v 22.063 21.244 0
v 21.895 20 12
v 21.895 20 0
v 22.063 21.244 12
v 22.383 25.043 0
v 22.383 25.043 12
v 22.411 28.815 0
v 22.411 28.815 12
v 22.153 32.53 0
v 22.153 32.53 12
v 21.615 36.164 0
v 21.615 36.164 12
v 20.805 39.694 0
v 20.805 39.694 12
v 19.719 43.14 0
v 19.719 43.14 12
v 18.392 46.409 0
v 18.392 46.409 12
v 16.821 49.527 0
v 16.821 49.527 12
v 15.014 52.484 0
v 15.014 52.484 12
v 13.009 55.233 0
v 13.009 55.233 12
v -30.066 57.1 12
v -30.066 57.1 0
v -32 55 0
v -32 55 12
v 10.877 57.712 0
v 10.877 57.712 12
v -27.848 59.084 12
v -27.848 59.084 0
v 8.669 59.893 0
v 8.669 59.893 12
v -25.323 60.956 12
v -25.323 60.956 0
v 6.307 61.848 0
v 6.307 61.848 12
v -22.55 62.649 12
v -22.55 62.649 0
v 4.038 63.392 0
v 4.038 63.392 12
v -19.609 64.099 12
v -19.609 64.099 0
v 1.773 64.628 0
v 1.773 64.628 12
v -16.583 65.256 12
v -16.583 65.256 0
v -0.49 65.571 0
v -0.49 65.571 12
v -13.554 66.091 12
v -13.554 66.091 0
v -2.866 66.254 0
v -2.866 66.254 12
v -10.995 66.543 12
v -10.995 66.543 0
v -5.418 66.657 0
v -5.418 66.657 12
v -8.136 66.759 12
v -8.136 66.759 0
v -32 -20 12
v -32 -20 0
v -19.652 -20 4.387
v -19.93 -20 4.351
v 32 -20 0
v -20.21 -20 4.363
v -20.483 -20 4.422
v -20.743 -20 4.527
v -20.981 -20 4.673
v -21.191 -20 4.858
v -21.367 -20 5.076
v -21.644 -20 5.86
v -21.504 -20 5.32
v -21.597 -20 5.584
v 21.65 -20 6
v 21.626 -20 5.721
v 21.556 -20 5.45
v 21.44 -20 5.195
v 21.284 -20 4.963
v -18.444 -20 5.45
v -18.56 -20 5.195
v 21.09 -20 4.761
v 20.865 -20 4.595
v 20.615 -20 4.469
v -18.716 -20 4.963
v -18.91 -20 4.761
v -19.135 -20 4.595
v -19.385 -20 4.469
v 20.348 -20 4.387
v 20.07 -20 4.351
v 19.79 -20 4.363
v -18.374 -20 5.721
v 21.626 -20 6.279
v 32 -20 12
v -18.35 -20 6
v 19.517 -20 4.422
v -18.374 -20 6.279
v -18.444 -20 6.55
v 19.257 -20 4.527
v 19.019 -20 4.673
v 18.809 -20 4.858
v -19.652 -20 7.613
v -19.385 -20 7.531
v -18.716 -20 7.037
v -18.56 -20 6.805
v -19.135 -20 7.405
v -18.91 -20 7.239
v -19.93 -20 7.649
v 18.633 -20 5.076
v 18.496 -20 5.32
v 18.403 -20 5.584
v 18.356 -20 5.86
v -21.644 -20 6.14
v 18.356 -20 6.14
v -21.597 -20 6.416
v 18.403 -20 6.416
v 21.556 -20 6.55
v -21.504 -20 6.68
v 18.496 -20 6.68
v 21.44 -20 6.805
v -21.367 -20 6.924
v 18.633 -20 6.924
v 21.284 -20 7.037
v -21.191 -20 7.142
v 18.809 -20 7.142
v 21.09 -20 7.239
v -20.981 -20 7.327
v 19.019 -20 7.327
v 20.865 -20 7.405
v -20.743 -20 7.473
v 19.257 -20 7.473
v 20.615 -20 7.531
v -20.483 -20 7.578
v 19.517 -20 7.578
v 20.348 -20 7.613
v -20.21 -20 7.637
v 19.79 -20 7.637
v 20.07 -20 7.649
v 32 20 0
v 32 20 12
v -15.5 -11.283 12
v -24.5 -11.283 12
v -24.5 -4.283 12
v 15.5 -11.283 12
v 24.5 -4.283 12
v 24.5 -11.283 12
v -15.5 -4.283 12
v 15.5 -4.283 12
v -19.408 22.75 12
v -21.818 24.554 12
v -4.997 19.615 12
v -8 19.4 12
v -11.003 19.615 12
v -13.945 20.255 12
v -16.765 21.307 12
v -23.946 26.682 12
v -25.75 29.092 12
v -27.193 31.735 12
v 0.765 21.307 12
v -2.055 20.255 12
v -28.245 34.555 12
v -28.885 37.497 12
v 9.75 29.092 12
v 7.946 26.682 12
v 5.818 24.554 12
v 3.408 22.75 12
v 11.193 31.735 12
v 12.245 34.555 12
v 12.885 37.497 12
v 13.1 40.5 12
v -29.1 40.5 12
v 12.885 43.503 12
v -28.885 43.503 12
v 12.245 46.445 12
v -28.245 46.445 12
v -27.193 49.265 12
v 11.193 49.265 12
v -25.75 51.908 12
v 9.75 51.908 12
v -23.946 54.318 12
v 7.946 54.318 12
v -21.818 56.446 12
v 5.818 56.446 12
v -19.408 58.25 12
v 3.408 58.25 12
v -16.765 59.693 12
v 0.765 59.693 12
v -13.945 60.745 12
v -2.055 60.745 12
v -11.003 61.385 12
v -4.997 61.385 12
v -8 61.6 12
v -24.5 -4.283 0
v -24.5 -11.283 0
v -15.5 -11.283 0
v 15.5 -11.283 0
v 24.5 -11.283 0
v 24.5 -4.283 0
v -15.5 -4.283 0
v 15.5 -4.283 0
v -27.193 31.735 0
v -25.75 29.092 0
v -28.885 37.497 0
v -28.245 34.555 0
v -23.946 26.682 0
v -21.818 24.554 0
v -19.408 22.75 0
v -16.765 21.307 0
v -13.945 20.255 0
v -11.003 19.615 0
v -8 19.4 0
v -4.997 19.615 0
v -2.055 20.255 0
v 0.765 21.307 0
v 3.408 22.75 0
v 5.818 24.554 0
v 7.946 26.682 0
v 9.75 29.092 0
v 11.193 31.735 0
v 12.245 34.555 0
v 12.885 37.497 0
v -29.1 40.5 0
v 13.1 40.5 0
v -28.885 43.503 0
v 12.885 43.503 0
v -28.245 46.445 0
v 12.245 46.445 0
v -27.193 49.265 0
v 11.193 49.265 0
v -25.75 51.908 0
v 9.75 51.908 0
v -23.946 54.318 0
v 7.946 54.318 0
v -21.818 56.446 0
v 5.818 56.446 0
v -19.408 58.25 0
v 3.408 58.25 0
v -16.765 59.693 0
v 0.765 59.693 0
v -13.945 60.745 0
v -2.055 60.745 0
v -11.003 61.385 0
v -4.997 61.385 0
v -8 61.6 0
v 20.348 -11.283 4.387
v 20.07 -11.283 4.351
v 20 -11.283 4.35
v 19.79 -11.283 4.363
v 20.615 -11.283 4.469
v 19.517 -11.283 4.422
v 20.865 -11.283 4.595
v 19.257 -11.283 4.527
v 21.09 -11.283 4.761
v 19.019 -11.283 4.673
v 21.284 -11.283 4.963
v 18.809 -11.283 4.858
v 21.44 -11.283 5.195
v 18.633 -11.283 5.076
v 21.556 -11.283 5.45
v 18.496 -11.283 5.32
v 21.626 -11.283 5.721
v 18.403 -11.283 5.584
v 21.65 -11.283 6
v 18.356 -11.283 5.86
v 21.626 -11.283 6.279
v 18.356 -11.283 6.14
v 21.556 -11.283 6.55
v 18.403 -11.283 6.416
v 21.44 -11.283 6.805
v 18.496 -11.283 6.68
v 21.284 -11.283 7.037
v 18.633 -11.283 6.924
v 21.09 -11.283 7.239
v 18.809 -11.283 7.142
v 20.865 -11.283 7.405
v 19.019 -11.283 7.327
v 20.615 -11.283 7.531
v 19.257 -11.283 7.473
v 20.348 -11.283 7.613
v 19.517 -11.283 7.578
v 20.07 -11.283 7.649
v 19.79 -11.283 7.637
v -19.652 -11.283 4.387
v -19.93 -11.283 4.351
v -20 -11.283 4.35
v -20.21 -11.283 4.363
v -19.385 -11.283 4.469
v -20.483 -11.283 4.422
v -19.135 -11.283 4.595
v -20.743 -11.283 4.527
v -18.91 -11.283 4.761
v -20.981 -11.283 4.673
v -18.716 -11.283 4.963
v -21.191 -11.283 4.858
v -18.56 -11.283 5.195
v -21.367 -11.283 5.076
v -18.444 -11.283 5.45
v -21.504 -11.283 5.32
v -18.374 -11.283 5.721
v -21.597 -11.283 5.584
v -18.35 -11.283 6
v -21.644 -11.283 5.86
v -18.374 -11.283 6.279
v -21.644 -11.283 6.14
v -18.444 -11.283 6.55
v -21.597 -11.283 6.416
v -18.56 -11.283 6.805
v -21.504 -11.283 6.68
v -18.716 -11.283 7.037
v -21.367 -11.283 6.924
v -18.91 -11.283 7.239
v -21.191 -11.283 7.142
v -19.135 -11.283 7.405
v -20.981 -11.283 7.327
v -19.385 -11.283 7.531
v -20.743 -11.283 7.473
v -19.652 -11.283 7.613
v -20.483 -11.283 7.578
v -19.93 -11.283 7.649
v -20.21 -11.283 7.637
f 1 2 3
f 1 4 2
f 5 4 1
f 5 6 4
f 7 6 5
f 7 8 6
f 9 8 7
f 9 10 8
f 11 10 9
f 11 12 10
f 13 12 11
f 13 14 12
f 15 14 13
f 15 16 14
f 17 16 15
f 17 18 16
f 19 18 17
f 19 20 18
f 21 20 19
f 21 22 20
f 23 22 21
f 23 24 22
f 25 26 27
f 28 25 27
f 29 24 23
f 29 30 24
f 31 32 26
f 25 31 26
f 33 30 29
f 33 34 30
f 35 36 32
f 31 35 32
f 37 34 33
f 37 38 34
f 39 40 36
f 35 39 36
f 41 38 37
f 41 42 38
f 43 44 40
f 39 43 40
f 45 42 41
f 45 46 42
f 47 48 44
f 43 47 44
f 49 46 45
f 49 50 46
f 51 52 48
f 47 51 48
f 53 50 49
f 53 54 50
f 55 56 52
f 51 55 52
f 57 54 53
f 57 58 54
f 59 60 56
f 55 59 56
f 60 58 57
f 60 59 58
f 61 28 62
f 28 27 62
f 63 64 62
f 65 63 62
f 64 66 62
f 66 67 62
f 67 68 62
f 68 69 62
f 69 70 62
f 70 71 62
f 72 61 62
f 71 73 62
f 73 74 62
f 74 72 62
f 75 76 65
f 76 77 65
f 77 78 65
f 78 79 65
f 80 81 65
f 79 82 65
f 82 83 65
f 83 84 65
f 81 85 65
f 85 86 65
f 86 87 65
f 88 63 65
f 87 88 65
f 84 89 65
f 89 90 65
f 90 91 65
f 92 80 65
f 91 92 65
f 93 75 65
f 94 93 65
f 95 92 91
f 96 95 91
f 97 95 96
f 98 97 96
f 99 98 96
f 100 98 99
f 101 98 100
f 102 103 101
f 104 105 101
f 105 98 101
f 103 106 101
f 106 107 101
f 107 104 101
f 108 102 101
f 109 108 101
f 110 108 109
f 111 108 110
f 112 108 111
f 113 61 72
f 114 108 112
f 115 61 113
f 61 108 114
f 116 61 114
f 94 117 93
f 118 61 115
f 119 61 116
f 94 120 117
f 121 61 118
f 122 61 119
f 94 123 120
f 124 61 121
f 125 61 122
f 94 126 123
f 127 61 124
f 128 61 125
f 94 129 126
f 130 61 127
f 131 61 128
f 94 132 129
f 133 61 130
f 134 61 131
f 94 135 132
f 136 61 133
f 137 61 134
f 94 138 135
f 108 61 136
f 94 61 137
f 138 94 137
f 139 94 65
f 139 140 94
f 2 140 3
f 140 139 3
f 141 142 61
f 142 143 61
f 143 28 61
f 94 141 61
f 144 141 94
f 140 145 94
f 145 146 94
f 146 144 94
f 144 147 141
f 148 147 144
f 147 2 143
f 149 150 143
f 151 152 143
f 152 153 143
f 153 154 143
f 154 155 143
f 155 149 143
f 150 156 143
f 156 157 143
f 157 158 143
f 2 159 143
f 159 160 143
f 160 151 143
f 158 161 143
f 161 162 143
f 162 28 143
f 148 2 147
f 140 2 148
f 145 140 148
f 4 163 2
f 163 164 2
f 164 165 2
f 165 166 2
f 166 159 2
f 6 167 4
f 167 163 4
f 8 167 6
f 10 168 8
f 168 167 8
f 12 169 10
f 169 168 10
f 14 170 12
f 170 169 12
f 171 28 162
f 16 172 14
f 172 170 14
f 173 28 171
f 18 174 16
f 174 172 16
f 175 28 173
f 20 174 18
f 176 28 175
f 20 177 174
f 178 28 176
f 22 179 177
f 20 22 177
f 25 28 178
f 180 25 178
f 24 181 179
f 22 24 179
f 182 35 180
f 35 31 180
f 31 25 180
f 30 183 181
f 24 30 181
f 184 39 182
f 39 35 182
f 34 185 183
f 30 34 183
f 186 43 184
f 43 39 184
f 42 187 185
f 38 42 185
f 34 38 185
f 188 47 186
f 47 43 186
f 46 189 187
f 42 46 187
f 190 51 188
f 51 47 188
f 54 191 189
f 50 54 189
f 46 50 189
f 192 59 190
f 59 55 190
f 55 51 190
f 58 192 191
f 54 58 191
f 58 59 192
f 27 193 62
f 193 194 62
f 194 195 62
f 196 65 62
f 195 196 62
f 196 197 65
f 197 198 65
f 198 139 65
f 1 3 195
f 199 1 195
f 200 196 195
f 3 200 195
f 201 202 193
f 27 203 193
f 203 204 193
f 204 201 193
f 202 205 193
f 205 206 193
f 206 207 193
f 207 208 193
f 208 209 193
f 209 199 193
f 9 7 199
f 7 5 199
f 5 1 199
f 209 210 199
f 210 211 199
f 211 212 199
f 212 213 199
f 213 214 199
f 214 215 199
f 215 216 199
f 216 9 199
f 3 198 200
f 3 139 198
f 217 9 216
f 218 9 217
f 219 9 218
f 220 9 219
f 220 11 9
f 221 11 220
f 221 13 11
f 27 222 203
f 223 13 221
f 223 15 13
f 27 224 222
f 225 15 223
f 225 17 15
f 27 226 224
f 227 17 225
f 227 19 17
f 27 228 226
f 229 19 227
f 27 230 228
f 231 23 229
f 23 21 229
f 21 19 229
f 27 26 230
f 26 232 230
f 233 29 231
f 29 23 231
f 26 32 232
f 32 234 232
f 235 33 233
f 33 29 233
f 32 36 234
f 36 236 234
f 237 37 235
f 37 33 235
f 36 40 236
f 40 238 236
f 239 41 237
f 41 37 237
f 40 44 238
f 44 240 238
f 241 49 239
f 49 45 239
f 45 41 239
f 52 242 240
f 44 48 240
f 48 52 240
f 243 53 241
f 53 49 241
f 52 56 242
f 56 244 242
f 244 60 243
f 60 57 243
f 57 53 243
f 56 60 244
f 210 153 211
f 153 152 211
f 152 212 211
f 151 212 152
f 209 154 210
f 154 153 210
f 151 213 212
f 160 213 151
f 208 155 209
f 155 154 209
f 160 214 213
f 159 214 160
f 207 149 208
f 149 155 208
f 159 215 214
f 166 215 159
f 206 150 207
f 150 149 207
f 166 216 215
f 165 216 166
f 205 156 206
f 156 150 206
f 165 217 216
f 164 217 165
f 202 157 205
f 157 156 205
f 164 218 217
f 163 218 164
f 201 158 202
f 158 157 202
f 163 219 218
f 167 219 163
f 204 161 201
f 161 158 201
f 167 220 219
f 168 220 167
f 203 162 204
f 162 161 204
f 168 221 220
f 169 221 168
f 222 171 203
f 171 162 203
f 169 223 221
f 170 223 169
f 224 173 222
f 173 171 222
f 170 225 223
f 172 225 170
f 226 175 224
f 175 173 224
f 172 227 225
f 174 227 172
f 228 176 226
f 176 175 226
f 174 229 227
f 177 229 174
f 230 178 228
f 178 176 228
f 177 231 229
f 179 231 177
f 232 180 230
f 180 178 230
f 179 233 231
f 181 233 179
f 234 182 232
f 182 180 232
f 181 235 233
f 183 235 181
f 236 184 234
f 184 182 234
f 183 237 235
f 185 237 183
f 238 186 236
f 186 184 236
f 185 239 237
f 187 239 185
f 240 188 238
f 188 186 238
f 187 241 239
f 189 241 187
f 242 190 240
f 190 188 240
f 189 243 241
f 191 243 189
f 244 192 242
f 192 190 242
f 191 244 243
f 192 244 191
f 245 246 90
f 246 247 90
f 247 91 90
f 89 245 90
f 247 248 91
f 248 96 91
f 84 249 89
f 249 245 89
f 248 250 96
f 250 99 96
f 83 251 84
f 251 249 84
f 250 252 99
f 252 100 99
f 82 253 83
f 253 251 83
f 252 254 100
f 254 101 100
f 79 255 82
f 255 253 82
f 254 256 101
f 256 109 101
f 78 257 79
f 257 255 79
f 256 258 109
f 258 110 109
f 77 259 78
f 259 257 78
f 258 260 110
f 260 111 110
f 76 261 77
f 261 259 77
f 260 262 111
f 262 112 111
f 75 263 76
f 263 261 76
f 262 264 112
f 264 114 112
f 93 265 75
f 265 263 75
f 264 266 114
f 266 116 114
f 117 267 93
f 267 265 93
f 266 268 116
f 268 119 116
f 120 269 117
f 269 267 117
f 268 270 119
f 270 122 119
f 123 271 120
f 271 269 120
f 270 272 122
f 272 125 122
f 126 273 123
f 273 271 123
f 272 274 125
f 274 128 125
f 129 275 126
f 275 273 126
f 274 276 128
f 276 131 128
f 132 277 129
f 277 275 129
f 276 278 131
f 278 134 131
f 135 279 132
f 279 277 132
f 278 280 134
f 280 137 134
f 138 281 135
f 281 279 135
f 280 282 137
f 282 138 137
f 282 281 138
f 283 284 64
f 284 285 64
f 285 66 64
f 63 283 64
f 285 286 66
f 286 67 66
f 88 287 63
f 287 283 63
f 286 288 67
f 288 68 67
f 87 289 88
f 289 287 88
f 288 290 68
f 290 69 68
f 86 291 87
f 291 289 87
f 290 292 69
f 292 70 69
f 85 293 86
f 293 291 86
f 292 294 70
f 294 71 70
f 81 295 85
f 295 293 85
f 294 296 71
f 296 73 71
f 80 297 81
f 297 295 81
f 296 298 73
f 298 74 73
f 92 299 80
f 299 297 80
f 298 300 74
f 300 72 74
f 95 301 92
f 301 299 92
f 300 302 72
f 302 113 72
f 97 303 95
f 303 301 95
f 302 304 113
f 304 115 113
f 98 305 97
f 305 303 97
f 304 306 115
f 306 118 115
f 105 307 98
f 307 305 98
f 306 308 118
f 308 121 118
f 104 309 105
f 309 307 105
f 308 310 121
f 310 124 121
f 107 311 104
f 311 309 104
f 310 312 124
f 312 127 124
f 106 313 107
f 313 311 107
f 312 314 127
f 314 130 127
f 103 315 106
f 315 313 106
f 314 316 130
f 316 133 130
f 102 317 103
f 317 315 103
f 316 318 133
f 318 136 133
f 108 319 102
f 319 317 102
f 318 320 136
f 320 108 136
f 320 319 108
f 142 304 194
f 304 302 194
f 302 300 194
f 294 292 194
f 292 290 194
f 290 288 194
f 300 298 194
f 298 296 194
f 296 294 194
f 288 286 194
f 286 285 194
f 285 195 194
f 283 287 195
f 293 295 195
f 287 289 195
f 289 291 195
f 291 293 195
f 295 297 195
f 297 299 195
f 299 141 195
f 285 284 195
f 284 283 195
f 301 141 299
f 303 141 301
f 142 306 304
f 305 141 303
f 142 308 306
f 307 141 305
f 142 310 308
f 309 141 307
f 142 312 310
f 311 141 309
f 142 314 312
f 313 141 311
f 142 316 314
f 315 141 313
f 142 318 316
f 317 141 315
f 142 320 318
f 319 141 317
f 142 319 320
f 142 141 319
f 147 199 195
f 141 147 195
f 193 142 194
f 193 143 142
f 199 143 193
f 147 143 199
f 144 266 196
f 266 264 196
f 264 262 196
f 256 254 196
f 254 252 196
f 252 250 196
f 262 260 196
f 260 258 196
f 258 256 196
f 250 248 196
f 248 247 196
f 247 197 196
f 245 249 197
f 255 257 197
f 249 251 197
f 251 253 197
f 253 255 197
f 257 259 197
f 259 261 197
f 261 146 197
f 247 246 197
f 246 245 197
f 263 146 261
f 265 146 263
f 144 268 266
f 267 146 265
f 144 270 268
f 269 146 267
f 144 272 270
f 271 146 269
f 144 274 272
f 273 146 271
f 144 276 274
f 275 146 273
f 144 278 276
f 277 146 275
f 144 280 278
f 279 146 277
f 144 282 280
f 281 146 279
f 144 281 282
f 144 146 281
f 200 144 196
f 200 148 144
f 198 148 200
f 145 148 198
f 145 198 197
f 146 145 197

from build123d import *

# Parameters (mm, degrees)
SKETCH1_W           = 64
SKETCH1_H           = 40
BOSS_EXTRUDE1_DEPTH = 12
CUT_EXTRUDE1_DEPTH  = 13.0000001
SKETCH3_R           = 1.65
CUT_EXTRUDE4_DEPTH  = 10
SKETCH5_W           = 9
SKETCH5_H           = 7
CUT_EXTRUDE5_DEPTH  = 13.0000001


with BuildPart() as part:
    # Sketch1 → Boss-Extrude1 (new body)
    with BuildSketch(Plane.XY):
        with BuildLine():
            Line((-32, 55), (-32, 20))
            Line((-32, 20), (21.894736842, 20))
            add(Edge.make_bspline(
                [(-32, 55), (-25.467258538, 62.875582676), (-5.817351499, 72.029269909), (19.334385291, 52.075193803), (23.775907594, 32.709936379), (21.894736842, 20)],
                knots=[0, 0, 0, 0, 0.37053834, 0.573066511, 1, 1, 1, 1], degree=3))
        make_face()
        Rectangle(SKETCH1_W, SKETCH1_H)
    extrude(amount=BOSS_EXTRUDE1_DEPTH)

    # Sketch2 → Cut-Extrude1 (cut, through all)
    with BuildSketch(Plane.XY.offset(12)):
        with BuildLine():
            Line((4.2, 23.284599918), (4.2, 52.5))
            Line((4.2, 52.5), (-20.2, 52.5))
            Line((-20.2, 52.5), (-20.2, 23.284599918))
            ThreePointArc((-20.2, 23.284599918), (-8, 19.4), (4.2, 23.284599918))
        make_face()
        with BuildLine():
            Line((-20.2, 52.5), (4.2, 52.5))
            Line((4.2, 52.5), (4.2, 23.284599918))
            ThreePointArc((4.2, 23.284599918), (10.743398838, 30.81005676), (13.1, 40.5))
            ThreePointArc((13.1, 40.5), (-17.68994324, 59.243398838), (-20.2, 23.284599918))
            Line((-20.2, 23.284599918), (-20.2, 52.5))
        make_face()
    extrude(amount=-CUT_EXTRUDE1_DEPTH, mode=Mode.SUBTRACT)

    # Sketch3 → Cut-Extrude4 (cut)
    with BuildSketch(Plane.XZ.offset(20)):
        with Locations((-20, 6)):
            Circle(SKETCH3_R)
        with Locations((20, 6)):
            Circle(SKETCH3_R)
    extrude(amount=-CUT_EXTRUDE4_DEPTH, mode=Mode.SUBTRACT)

    # Sketch5 → Cut-Extrude5 (cut, through all)
    with BuildSketch(Plane.XY.offset(12)):
        with Locations((-20, -7.782850087)):
            Rectangle(SKETCH5_W, SKETCH5_H)
        with Locations((20, -7.782850087)):
            Rectangle(SKETCH5_W, SKETCH5_H)
    extrude(amount=-CUT_EXTRUDE5_DEPTH, mode=Mode.SUBTRACT)


solid = part.part
